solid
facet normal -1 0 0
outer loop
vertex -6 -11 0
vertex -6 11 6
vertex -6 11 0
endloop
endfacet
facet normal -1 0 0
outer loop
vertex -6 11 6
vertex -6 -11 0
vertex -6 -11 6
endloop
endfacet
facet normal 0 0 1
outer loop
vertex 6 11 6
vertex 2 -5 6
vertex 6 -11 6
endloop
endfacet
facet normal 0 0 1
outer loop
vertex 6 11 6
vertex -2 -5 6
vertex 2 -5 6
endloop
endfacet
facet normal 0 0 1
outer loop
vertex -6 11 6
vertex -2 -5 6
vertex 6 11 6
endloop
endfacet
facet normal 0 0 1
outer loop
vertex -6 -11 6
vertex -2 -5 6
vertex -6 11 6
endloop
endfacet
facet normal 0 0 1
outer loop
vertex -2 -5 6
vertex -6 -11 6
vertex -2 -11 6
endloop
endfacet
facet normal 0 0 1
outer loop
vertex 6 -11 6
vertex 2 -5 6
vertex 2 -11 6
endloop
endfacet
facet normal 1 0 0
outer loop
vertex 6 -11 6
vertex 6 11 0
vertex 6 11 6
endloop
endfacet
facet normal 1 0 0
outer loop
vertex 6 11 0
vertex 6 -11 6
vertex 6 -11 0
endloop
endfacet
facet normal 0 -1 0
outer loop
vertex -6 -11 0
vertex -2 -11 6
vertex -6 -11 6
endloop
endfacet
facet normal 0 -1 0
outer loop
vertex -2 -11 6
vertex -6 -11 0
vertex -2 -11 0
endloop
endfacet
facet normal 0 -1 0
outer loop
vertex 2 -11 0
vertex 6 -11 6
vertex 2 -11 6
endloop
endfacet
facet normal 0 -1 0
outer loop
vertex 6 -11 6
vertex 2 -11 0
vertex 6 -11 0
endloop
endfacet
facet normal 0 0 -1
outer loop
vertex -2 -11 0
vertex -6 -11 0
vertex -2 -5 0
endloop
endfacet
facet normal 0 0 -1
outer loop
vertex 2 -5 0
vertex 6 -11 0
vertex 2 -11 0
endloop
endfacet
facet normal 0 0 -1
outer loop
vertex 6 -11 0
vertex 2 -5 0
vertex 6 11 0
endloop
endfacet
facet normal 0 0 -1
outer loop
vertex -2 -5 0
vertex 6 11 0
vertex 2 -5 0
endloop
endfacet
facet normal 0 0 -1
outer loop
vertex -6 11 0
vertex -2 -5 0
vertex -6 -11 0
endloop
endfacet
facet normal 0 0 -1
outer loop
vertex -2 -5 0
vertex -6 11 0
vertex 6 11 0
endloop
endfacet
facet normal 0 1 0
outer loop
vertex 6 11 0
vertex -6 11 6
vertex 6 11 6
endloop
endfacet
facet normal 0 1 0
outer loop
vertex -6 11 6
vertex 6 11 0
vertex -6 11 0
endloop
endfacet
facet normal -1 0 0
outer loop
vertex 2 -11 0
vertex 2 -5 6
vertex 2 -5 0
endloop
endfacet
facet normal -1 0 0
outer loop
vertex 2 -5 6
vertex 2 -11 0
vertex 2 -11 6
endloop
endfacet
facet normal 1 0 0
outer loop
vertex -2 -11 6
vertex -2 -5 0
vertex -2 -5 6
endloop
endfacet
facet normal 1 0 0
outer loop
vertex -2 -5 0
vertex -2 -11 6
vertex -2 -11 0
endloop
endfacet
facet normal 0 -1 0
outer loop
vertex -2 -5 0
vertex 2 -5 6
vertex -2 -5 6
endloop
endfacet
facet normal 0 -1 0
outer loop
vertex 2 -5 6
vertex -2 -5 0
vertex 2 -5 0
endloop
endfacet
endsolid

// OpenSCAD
// Clip dimensions
clip_width = 12;
clip_height = 22;
clip_thickness = 6;
cutout_width = 4;
cutout_height = 6;
top_curve_radius = 4;

// Module to create the clip
module clip() {
    difference() {
        // Main body of the clip
        hull() {
            translate([0, 0, clip_thickness / 2])
                cube([clip_width, clip_height, clip_thickness], center=true);
            translate([0, clip_height / 2 - top_curve_radius, clip_thickness / 2])
                cylinder(r=top_curve_radius, h=clip_thickness, center=true);
        }
        
        // U-shaped cutout at the bottom with straight legs
        translate([-cutout_width / 2, -clip_height / 2, -clip_thickness])
            cube([cutout_width, cutout_height, clip_thickness * 2], center=false);
    }
}

// Render the clip
clip();
